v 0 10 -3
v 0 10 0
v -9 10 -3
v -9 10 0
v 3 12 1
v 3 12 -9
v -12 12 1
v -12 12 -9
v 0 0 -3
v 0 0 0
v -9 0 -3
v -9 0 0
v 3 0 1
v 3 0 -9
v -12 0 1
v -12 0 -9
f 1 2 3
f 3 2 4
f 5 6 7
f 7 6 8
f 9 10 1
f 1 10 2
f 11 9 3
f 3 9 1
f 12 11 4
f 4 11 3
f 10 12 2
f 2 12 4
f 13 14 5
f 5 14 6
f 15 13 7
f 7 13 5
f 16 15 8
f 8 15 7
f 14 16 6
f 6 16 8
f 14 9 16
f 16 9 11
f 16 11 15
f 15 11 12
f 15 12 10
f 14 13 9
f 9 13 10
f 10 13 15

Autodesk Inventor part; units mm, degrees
ref_plane "YZ Plane" through (0, 0, 0) normal (1, 0, 0) x (0, 1, 0)
ref_plane "XZ Plane" through (0, 0, 0) normal (0, 1, 0) x (-1, 0, 0)
ref_plane "XY Plane" through (0, 0, 0) normal (0, 0, 1) x (1, 0, 0)
sketch "Sketch3" plane through (0, 0, 0) normal (0, 1, 0) x (-1, 0, 0)
  line L0 (0, 0) -> (9, 0)
  line L1 (9, 0) -> (9, -3)
  line L2 (9, -3) -> (0, -3)
  line L3 (0, -3) -> (0, 0)
  line L4 (0, 1) -> (12, 1)
  line L5 (12, 1) -> (12, -9)
  line L6 (12, -9) -> (-3, -9)
  line L7 (0, 1) -> (-3, 1)
  line L8 (-3, 1) -> (-3, -9)
  dimension "d17" = 3
  dimension "d19" = 12
  dimension "d20" = 10
extrude "Extrusion3" add sketch "Sketch3" along normal blind 10
sketch "Sketch4" plane through (0, 10, 0) normal (0, 1, 0) x (1, 0, 0)
  line L0 (-12, 9) -> (-12, -1) projected
  line L1 (3, 9) -> (-12, 9) projected
  line L2 (3, -1) -> (3, 9) projected
  line L3 (-12, -1) -> (3, -1) projected
  point P0 (0, 0)
extrude "Extrusion4" add sketch "Sketch4" along normal blind 2
properties part number "reed-switch-design-test"
